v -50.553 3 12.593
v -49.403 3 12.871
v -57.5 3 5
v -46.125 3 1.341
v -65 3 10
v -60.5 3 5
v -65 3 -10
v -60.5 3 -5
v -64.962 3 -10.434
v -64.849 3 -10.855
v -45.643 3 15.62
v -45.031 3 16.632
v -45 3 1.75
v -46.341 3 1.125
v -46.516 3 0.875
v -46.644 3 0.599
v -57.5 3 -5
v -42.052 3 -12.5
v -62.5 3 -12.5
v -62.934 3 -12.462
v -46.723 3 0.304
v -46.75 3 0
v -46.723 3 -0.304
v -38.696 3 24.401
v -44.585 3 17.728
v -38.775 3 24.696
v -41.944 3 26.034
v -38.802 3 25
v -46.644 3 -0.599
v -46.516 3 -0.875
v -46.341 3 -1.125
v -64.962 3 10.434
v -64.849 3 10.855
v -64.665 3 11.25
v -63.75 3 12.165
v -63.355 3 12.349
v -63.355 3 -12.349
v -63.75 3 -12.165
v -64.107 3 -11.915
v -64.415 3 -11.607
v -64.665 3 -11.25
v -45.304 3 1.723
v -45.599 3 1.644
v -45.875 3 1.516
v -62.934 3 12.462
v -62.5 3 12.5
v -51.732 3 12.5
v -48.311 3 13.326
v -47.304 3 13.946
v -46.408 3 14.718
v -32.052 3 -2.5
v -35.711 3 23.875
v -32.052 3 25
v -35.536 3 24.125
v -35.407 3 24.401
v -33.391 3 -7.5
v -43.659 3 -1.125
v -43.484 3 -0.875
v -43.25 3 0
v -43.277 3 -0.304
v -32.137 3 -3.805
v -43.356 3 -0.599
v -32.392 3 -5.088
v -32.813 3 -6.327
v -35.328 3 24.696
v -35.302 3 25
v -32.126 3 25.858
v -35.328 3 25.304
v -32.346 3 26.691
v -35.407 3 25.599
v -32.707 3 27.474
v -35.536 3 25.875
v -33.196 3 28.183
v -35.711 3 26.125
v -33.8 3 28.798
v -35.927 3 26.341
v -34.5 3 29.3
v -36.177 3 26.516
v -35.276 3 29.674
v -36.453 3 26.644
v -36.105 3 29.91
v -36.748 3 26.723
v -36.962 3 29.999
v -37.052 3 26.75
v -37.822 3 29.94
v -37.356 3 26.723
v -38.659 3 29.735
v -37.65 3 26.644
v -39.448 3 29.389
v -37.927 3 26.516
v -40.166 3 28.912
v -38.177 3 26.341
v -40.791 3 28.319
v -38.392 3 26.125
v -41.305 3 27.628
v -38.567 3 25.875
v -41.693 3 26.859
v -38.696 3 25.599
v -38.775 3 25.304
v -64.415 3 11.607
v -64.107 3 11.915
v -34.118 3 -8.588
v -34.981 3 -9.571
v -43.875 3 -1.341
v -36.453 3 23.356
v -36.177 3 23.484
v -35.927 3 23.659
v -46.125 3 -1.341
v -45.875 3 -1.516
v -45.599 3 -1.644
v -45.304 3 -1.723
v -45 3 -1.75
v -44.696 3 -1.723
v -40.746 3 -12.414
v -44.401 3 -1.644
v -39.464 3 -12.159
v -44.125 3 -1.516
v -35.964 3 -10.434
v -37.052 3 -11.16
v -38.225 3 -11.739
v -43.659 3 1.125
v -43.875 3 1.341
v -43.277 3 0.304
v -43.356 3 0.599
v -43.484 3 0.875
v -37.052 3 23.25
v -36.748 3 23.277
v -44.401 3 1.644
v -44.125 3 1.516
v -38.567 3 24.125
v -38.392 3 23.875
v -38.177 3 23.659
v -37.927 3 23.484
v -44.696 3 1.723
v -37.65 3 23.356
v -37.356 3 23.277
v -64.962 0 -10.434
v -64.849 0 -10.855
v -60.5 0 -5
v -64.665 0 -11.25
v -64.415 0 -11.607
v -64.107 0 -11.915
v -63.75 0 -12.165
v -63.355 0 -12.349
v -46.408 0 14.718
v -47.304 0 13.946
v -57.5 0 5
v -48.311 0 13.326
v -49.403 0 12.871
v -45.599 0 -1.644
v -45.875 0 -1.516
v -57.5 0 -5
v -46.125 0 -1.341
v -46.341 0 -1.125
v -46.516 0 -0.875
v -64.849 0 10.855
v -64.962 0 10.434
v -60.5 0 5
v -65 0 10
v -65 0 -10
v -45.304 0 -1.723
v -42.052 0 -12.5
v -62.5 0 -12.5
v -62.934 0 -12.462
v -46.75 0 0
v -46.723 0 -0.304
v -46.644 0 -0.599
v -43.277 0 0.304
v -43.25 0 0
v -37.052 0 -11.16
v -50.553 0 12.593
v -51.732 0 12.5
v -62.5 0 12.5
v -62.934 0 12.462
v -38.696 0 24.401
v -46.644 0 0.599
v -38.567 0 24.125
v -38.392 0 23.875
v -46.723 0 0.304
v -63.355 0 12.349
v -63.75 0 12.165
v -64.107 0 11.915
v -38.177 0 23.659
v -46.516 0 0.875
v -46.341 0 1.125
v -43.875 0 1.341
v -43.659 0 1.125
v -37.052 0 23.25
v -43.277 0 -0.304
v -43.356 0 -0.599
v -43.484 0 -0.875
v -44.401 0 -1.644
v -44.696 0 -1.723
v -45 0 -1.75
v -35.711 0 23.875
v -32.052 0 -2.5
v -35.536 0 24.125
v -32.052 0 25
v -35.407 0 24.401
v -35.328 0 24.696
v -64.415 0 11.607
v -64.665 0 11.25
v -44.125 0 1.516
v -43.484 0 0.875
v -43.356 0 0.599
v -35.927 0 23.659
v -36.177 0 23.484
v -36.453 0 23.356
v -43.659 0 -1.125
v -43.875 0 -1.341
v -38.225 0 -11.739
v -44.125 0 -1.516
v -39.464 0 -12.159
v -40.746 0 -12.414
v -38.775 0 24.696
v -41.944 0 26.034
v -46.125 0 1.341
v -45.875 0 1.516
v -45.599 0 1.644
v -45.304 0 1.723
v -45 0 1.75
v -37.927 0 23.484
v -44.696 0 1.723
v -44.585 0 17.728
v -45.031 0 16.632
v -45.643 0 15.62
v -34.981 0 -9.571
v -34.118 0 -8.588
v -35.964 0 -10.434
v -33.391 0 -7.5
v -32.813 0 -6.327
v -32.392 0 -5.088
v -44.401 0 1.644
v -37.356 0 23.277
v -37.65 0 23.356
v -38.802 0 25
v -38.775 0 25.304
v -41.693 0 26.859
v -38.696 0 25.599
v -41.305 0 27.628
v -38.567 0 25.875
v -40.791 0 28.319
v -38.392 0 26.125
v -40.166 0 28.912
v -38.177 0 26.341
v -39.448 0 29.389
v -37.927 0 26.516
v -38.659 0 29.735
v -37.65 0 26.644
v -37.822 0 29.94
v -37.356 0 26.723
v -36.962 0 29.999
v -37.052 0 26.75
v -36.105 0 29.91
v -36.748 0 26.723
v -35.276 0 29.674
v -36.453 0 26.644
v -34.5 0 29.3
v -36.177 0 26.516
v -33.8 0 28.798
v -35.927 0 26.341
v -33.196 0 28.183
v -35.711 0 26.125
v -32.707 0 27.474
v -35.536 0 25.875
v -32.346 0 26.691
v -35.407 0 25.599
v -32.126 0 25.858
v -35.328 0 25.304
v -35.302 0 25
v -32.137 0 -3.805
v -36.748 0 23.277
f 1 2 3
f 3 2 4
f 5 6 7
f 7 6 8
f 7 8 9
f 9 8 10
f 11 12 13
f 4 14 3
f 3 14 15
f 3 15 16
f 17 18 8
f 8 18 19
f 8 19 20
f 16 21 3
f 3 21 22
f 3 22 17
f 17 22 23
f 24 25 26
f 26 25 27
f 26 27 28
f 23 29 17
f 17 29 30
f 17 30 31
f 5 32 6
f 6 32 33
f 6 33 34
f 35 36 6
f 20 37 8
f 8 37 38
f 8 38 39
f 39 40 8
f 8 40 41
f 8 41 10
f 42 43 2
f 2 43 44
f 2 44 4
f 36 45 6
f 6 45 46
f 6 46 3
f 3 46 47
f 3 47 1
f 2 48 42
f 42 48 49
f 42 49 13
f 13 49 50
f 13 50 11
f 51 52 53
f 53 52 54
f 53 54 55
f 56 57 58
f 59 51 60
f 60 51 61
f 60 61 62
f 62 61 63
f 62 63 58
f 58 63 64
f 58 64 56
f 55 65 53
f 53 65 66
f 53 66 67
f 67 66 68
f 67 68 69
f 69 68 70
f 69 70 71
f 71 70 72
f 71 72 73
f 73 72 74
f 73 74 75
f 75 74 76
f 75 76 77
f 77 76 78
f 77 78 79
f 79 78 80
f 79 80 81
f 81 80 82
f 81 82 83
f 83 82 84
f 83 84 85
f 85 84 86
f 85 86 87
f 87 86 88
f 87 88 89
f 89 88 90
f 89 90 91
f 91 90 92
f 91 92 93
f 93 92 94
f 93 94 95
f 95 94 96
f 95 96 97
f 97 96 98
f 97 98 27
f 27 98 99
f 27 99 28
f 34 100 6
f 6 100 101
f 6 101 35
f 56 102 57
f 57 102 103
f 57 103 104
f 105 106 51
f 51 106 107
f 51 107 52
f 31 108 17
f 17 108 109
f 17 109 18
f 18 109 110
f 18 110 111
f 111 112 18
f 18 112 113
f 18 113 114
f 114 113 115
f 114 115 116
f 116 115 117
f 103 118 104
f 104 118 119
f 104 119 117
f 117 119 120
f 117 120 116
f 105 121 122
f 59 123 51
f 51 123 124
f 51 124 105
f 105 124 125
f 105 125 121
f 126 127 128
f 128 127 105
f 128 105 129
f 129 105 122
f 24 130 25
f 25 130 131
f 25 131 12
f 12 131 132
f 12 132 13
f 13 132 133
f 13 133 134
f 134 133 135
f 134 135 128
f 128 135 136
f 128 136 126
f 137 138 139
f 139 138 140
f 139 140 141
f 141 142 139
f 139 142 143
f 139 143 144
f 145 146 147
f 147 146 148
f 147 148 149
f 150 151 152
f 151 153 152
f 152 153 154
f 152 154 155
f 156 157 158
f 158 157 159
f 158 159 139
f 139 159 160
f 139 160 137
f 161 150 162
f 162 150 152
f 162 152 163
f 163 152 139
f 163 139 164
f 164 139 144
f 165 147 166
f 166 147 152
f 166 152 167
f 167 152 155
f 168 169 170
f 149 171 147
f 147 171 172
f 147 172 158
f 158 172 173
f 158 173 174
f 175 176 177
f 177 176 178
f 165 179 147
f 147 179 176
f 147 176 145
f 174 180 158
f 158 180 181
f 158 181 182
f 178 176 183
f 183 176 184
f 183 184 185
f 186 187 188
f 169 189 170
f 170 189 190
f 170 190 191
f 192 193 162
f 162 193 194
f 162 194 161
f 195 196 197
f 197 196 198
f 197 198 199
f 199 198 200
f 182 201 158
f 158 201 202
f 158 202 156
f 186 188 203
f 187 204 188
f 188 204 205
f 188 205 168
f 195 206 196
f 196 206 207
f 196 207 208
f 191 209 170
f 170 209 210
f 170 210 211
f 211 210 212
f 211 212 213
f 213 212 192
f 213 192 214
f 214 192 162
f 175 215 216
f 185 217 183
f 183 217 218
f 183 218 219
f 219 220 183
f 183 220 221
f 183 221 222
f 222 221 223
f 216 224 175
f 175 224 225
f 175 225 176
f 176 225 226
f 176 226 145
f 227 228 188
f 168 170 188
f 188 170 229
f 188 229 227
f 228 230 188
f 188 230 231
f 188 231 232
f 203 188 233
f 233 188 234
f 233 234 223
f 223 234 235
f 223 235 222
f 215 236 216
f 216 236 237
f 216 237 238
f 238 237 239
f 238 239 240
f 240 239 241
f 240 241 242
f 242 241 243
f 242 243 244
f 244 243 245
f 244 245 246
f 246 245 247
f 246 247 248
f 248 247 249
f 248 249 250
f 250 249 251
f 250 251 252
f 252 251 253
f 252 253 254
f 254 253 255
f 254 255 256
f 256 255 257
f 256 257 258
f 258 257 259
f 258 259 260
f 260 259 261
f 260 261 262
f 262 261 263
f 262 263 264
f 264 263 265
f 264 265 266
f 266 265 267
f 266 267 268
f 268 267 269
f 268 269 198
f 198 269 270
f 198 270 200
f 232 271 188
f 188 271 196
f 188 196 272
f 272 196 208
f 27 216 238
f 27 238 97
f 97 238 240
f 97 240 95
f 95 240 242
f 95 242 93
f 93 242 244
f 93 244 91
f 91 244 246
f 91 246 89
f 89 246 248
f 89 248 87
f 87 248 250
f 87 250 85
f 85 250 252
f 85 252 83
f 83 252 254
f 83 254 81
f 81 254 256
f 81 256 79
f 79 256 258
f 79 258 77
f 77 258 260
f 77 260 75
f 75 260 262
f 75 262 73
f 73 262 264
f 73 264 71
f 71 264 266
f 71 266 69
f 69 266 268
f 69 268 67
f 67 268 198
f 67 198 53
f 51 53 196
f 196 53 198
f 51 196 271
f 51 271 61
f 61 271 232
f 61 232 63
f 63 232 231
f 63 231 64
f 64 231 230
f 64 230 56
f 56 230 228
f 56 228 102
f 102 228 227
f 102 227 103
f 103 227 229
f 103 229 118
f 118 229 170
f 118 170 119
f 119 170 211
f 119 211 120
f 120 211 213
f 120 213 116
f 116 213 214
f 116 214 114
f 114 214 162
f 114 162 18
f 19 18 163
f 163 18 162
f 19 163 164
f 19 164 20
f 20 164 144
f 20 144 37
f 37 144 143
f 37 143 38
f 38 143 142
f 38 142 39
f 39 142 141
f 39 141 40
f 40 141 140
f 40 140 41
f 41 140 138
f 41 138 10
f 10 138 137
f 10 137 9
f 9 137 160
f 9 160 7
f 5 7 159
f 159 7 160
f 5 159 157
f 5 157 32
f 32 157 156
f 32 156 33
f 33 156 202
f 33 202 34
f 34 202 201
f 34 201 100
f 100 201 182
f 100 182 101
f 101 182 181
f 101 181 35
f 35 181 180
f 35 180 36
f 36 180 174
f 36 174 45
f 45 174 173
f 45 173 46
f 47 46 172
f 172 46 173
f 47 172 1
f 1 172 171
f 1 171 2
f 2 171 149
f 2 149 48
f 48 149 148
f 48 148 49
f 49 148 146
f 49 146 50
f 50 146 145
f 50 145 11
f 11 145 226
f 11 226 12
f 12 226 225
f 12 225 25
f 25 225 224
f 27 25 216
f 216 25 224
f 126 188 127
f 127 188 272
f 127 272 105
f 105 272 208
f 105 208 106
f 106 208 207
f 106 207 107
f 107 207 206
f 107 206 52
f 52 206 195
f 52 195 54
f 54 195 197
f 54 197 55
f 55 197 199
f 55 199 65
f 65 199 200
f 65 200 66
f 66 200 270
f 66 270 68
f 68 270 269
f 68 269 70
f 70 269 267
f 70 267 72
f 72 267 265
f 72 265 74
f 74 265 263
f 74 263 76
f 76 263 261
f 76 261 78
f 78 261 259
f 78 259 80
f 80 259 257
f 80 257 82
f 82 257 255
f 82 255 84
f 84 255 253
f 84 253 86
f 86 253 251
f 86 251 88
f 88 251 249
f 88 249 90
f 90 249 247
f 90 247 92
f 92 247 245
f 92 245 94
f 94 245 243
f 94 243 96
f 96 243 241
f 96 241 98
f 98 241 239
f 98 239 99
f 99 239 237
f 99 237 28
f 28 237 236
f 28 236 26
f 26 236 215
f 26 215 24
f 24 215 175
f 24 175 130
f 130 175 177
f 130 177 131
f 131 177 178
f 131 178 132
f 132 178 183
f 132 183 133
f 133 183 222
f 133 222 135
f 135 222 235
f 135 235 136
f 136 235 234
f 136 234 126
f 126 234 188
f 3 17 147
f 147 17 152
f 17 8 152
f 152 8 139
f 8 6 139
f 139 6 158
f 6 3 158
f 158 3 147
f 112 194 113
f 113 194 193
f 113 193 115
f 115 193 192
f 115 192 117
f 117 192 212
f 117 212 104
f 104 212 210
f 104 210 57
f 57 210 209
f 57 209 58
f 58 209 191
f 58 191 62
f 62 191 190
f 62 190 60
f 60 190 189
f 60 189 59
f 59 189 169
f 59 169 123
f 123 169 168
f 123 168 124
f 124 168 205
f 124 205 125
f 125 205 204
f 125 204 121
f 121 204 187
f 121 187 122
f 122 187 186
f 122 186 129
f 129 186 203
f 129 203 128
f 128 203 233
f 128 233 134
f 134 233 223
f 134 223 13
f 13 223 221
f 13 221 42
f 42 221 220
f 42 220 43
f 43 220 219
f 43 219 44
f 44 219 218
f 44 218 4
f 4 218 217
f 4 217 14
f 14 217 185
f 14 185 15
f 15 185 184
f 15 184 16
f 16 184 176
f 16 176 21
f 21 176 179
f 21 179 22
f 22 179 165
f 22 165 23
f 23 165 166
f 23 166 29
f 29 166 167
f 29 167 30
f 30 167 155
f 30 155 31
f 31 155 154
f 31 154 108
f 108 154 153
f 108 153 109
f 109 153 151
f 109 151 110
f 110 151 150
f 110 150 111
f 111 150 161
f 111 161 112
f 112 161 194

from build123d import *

# Parameters (mm, degrees)
SKETCH1_R           = 1.75
SKETCH1_W           = 3
SKETCH1_H           = 10
BOSS_EXTRUDE1_DEPTH = 3


with BuildPart() as part:
    # Sketch1 → Boss-Extrude1 (new body)
    with BuildSketch(Plane(origin=(0, 0, 0), x_dir=(1, 0, 0), z_dir=(0, 1, 0))):
        with BuildLine():
            Line((-32.051716829, -25), (-32.051716829, 2.5))
            ThreePointArc((-32.051716829, 2.5), (-34.980649017, 9.571067812), (-42.051716829, 12.5))
            Line((-42.051716829, 12.5), (-62.5, 12.5))
            ThreePointArc((-62.5, 12.5), (-64.267766953, 11.767766953), (-65, 10))
            Line((-65, 10), (-65, -10))
            ThreePointArc((-65, -10), (-64.267766953, -11.767766953), (-62.5, -12.5))
            Line((-62.5, -12.5), (-51.731989821, -12.5))
            ThreePointArc((-51.731989821, -12.5), (-47.304406502, -13.946364237), (-44.584529361, -17.727598413))
            Line((-44.584529361, -17.727598413), (-41.943571372, -26.034291608))
            ThreePointArc((-41.943571372, -26.034291608), (-36.531751789, -29.972890141), (-32.051716829, -25))
        make_face()
        with Locations(Location((-45, 0, 0), (0, 0, 270))):
            Circle(SKETCH1_R, mode=Mode.SUBTRACT)
        with Locations(Location((-37.051716829, -25, 0), (0, 0, 270))):
            Circle(SKETCH1_R, mode=Mode.SUBTRACT)
        with Locations((-59, 0)):
            Rectangle(SKETCH1_W, SKETCH1_H, mode=Mode.SUBTRACT)
    extrude(amount=BOSS_EXTRUDE1_DEPTH)


solid = part.part
